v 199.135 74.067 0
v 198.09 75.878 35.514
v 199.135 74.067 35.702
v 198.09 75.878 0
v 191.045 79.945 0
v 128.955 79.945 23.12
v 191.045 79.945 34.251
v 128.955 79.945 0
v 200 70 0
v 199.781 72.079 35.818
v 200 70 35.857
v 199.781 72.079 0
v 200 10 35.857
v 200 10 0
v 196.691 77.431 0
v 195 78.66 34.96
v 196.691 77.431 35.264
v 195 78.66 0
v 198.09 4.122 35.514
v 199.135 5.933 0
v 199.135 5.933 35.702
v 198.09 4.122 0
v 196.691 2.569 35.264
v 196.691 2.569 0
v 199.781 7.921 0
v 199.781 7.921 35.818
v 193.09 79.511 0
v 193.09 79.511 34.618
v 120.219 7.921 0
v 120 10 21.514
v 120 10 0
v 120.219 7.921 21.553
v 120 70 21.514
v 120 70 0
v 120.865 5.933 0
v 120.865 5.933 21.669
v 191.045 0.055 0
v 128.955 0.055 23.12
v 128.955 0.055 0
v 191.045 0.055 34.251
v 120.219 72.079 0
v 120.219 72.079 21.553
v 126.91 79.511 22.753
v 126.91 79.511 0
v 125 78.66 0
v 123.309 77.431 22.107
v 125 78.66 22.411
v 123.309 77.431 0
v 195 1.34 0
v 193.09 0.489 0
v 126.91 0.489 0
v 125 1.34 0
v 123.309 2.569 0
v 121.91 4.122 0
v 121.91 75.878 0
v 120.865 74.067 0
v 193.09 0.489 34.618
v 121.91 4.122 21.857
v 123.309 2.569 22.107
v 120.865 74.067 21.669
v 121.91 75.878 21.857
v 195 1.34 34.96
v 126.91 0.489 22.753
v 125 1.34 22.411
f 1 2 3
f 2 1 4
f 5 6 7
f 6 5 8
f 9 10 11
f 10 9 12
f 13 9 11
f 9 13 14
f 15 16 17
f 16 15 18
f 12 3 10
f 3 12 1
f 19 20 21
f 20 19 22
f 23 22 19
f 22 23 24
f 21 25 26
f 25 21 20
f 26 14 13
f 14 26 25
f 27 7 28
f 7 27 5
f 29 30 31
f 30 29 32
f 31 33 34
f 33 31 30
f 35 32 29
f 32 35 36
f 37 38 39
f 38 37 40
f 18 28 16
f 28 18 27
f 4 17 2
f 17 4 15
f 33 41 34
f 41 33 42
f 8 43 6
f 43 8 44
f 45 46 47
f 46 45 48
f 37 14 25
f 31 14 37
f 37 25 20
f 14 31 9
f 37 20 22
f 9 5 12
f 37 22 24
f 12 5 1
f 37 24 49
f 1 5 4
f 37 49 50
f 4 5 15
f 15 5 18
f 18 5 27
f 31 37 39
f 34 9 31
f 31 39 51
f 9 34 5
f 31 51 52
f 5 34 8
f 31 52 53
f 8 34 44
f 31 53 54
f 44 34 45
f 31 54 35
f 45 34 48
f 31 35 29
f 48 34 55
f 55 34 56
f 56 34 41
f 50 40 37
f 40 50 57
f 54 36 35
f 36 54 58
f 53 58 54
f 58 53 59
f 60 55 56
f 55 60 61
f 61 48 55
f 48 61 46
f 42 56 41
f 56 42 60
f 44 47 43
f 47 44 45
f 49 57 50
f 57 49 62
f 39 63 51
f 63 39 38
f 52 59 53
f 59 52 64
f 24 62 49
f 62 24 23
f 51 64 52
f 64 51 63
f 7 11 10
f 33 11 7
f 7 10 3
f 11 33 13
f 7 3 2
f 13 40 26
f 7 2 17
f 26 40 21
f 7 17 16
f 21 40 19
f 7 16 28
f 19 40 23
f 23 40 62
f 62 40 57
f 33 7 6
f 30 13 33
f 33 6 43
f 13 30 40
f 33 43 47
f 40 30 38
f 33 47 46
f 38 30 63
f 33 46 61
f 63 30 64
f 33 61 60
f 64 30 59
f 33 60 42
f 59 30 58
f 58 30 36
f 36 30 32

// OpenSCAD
//170 mm 
// 30mm
// sine(x) = O/ H
// x = asin(0/H)

partialFoot=170;
height=30;
angle=-1*asin(height/partialFoot);

platformSize=80;

// FIXME: need fn
// FIXME: need fn x 4

difference() {
  translate([partialFoot-(platformSize/2), 10, 0])
  minkowski() {
    cube([60, 60, 60]);
    cylinder(h=1, r=10);
  }

  // cut angle
  rotate([0, angle, 0])
  translate([0, -1, 0])
  cube([300, 90, 90]);
}
